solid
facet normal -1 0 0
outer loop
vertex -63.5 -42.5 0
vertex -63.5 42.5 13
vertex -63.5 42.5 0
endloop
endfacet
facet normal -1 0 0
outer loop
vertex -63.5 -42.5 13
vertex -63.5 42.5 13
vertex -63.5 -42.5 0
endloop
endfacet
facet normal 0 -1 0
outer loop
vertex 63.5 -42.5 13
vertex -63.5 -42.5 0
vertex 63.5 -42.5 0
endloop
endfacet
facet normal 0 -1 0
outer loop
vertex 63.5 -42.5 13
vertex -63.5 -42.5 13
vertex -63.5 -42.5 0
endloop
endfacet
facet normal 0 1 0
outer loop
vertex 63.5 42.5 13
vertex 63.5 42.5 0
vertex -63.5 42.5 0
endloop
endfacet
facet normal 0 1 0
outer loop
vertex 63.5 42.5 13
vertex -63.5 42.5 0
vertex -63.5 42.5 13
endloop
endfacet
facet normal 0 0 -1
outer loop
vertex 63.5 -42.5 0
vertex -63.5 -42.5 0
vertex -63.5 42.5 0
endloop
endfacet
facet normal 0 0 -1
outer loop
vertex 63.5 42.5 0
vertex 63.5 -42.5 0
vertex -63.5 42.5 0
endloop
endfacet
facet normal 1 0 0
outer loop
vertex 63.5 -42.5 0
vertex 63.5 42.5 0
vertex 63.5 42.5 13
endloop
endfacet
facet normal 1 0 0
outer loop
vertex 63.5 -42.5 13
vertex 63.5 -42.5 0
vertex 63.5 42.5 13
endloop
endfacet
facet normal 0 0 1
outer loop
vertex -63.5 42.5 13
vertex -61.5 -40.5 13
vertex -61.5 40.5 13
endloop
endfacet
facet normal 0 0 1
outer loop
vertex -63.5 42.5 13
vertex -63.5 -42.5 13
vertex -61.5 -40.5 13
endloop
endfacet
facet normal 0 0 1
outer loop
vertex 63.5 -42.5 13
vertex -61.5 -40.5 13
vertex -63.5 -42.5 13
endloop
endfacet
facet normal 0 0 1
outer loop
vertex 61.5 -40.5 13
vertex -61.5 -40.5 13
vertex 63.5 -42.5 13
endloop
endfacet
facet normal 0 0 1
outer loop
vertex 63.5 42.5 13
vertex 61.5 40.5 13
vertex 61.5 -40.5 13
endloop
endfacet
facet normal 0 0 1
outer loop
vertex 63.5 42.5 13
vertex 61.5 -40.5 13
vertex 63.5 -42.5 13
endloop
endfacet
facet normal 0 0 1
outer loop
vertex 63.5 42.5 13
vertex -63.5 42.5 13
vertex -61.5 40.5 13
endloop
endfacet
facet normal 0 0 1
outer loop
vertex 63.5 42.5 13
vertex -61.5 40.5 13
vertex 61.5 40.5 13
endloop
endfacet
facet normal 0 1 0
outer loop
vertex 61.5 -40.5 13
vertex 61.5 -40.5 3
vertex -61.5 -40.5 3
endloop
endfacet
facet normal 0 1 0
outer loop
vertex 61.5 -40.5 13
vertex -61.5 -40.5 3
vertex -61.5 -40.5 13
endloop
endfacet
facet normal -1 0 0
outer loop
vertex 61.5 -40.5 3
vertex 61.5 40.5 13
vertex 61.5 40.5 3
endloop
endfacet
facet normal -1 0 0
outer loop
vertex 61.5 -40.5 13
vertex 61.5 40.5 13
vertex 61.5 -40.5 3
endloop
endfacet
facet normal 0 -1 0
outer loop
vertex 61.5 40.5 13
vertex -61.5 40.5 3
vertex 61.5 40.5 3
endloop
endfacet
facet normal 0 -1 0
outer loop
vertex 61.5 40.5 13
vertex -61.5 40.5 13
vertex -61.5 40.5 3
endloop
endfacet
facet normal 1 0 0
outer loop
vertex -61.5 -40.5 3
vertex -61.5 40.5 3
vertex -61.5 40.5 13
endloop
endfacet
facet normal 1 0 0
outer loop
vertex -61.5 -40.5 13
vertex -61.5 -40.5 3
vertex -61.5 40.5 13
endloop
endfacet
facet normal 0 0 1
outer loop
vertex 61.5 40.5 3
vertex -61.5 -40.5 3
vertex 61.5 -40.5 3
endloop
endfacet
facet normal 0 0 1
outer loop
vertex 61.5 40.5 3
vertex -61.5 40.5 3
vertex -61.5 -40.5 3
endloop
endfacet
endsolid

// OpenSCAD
// Tip rack holder — tray with walls for standard 96-tip rack
// Port of hardware/cad/tip_rack_holder.py
// Regenerate: openscad -o hardware/stl/tip_rack_holder.stl hardware/scad/tip_rack_holder.scad

// Parameters (mm)
RACK_LENGTH    = 122.0;
RACK_WIDTH     = 80.0;
WALL_THICKNESS = 2.0;
WALL_HEIGHT    = 10.0;
BASE_THICKNESS = 3.0;
CLEARANCE      = 0.5;

// Derived
INNER_L = RACK_LENGTH + CLEARANCE * 2;  // 123.0
INNER_W = RACK_WIDTH  + CLEARANCE * 2;  // 81.0
OUTER_L = INNER_L + WALL_THICKNESS * 2; // 127.0
OUTER_W = INNER_W + WALL_THICKNESS * 2; // 85.0

// Base plate
translate([0, 0, BASE_THICKNESS / 2])
    cube([OUTER_L, OUTER_W, BASE_THICKNESS], center = true);

// Walls (outer box minus inner box)
translate([0, 0, BASE_THICKNESS + WALL_HEIGHT / 2])
    difference() {
        cube([OUTER_L, OUTER_W, WALL_HEIGHT], center = true);
        cube([INNER_L, INNER_W, WALL_HEIGHT + 1], center = true);
    }
